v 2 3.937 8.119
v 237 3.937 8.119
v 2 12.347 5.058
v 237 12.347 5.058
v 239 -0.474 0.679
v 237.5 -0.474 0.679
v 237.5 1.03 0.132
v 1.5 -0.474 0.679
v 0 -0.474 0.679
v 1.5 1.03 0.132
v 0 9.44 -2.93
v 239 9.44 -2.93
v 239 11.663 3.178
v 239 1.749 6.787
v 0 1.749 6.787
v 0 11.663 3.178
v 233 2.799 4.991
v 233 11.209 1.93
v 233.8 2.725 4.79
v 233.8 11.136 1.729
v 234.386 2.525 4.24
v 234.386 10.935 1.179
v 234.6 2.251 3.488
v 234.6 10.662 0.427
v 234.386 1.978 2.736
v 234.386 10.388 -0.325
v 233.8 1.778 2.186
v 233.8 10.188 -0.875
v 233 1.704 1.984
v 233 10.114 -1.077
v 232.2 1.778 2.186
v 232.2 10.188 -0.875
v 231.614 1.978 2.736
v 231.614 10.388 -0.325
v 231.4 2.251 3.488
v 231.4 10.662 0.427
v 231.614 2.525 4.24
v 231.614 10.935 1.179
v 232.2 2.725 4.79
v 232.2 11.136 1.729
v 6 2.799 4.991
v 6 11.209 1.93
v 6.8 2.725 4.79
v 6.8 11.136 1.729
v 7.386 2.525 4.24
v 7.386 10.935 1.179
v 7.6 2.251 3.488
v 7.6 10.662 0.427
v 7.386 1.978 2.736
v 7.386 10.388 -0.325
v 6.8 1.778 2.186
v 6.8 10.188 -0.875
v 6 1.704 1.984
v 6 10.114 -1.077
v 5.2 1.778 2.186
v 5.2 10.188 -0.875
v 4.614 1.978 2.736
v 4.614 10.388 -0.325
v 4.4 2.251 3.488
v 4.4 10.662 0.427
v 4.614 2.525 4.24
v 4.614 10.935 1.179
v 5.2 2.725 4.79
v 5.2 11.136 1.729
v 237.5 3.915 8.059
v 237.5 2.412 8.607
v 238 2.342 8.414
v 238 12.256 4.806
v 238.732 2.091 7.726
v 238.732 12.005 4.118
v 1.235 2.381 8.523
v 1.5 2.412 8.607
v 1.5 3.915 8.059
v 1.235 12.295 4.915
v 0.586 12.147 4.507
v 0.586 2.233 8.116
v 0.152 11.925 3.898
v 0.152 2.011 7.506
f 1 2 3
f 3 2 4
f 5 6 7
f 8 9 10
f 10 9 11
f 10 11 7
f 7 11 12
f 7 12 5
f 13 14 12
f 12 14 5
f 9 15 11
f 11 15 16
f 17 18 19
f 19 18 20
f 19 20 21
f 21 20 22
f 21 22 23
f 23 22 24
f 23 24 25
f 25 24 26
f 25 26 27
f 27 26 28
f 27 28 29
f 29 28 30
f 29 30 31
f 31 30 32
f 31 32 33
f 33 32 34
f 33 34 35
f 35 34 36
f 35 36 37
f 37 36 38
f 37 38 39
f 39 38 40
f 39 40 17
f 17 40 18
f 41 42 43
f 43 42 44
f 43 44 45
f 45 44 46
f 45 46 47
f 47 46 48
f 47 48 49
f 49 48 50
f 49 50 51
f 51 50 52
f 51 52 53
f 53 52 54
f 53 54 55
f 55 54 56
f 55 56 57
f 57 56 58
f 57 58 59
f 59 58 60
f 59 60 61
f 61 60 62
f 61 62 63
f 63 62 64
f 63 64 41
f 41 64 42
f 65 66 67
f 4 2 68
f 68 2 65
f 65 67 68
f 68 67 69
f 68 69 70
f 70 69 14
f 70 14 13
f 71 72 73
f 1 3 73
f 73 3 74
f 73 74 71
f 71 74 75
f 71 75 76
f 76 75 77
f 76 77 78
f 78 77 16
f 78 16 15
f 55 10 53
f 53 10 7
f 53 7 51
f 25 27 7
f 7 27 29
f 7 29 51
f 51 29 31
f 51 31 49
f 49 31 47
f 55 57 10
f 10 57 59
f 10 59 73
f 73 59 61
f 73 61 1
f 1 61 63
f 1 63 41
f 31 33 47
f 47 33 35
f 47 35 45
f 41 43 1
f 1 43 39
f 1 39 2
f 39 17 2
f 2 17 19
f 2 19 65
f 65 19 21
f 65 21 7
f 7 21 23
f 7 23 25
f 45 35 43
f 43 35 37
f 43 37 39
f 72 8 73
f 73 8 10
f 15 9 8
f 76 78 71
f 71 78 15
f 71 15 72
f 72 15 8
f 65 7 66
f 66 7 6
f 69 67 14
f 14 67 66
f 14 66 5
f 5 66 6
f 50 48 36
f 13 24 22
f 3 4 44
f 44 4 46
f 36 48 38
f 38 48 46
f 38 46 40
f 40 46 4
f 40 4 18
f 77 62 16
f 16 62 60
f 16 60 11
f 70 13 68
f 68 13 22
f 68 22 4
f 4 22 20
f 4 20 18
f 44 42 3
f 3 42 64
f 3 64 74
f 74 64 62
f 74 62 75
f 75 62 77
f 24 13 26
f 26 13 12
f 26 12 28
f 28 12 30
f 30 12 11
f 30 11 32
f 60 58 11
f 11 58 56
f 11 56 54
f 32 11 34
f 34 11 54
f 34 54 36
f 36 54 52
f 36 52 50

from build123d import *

# Parameters (mm, degrees)
BOSS_EXTRUDE1_DEPTH = 239
SKETCH2_R           = 1.599999999999998
SKETCH2_R_2         = 1.5999999999999908
CUT_EXTRUDE1_DEPTH  = 240.44586691023747
BOSS_EXTRUDE2_DEPTH = 1.6
FILLET1_R           = 2
SKETCH4_W           = 302.77939153503445
SKETCH4_H           = 48.73306397089993
CUT_EXTRUDE2_DEPTH  = 0.55


with BuildPart() as part:
    # Sketch1 → Boss-Extrude1 (new body)
    with BuildSketch(Plane(origin=(0, 0, 0), x_dir=(0, 0, -1), z_dir=(1, 0, 0))):
        Polygon((2.5431313581277277, 8.378511762801937), (-0.1315705594718698, 1.029828640425271), (-8.118957836152065, 3.936999858693529), (-4.86976647455813, 12.864079756159628), (3.117620802122064, 9.95690853789137), align=None)
    extrude(amount=BOSS_EXTRUDE1_DEPTH)

    # Sketch2 → Cut-Extrude1 (cut, through all)
    with BuildSketch(Plane(origin=(0, 9.794155508645982, -3.5647810749215956), x_dir=(1, 0, 0), z_dir=(0, 0.9396926207859053, -0.3420201433256773))):
        with Locations(Location((5.999999999999991, -4.047641310446752, 0), (0, 0, 270))):
            Circle(SKETCH2_R)
        with Locations(Location((232.99999999999997, -4.047641310446725, 0), (0, 0, 270))):
            Circle(SKETCH2_R_2)
    extrude(amount=-CUT_EXTRUDE1_DEPTH, mode=Mode.SUBTRACT)

    # Sketch3 → Boss-Extrude2 (add)
    with BuildSketch(Plane(origin=(0, 0.8670756111798825, -0.31558971332766134), x_dir=(1, 0, 0), z_dir=(0, 0.9396926207859052, -0.34202014332567726))):
        Polygon((0, -0.47585802304752833), (1.5, -0.47585802304752783), (1.5000000000000013, -8.975858023047525), (0, -8.975858023047529), align=None)
        Polygon((239, -0.47585802304752833), (237.5, -0.475858023047528), (237.5, -8.975858023047525), (239, -8.975858023047529), align=None)
    extrude(amount=-BOSS_EXTRUDE2_DEPTH)

    # Fillet1
    fillet1_edges = [part.edges().sort_by_distance(p)[0] for p in [
        (239, 7.6487857107978545, 6.76797827001564),
        (0, 7.648785710797854, 6.76797827001564),
    ]]
    fillet(fillet1_edges, radius=FILLET1_R)

    # Sketch4 → Cut-Extrude2 (cut)
    with BuildSketch(Plane(origin=(0, 9.794155508645986, -3.5647810749215965), x_dir=(1, 0, 0), z_dir=(0, 0.9396926207859053, -0.34202014332567743))):
        with Locations((120.43717430713222, 0.7530071571181338)):
            Rectangle(SKETCH4_W, SKETCH4_H)
    extrude(amount=-CUT_EXTRUDE2_DEPTH, mode=Mode.SUBTRACT)


solid = part.part
